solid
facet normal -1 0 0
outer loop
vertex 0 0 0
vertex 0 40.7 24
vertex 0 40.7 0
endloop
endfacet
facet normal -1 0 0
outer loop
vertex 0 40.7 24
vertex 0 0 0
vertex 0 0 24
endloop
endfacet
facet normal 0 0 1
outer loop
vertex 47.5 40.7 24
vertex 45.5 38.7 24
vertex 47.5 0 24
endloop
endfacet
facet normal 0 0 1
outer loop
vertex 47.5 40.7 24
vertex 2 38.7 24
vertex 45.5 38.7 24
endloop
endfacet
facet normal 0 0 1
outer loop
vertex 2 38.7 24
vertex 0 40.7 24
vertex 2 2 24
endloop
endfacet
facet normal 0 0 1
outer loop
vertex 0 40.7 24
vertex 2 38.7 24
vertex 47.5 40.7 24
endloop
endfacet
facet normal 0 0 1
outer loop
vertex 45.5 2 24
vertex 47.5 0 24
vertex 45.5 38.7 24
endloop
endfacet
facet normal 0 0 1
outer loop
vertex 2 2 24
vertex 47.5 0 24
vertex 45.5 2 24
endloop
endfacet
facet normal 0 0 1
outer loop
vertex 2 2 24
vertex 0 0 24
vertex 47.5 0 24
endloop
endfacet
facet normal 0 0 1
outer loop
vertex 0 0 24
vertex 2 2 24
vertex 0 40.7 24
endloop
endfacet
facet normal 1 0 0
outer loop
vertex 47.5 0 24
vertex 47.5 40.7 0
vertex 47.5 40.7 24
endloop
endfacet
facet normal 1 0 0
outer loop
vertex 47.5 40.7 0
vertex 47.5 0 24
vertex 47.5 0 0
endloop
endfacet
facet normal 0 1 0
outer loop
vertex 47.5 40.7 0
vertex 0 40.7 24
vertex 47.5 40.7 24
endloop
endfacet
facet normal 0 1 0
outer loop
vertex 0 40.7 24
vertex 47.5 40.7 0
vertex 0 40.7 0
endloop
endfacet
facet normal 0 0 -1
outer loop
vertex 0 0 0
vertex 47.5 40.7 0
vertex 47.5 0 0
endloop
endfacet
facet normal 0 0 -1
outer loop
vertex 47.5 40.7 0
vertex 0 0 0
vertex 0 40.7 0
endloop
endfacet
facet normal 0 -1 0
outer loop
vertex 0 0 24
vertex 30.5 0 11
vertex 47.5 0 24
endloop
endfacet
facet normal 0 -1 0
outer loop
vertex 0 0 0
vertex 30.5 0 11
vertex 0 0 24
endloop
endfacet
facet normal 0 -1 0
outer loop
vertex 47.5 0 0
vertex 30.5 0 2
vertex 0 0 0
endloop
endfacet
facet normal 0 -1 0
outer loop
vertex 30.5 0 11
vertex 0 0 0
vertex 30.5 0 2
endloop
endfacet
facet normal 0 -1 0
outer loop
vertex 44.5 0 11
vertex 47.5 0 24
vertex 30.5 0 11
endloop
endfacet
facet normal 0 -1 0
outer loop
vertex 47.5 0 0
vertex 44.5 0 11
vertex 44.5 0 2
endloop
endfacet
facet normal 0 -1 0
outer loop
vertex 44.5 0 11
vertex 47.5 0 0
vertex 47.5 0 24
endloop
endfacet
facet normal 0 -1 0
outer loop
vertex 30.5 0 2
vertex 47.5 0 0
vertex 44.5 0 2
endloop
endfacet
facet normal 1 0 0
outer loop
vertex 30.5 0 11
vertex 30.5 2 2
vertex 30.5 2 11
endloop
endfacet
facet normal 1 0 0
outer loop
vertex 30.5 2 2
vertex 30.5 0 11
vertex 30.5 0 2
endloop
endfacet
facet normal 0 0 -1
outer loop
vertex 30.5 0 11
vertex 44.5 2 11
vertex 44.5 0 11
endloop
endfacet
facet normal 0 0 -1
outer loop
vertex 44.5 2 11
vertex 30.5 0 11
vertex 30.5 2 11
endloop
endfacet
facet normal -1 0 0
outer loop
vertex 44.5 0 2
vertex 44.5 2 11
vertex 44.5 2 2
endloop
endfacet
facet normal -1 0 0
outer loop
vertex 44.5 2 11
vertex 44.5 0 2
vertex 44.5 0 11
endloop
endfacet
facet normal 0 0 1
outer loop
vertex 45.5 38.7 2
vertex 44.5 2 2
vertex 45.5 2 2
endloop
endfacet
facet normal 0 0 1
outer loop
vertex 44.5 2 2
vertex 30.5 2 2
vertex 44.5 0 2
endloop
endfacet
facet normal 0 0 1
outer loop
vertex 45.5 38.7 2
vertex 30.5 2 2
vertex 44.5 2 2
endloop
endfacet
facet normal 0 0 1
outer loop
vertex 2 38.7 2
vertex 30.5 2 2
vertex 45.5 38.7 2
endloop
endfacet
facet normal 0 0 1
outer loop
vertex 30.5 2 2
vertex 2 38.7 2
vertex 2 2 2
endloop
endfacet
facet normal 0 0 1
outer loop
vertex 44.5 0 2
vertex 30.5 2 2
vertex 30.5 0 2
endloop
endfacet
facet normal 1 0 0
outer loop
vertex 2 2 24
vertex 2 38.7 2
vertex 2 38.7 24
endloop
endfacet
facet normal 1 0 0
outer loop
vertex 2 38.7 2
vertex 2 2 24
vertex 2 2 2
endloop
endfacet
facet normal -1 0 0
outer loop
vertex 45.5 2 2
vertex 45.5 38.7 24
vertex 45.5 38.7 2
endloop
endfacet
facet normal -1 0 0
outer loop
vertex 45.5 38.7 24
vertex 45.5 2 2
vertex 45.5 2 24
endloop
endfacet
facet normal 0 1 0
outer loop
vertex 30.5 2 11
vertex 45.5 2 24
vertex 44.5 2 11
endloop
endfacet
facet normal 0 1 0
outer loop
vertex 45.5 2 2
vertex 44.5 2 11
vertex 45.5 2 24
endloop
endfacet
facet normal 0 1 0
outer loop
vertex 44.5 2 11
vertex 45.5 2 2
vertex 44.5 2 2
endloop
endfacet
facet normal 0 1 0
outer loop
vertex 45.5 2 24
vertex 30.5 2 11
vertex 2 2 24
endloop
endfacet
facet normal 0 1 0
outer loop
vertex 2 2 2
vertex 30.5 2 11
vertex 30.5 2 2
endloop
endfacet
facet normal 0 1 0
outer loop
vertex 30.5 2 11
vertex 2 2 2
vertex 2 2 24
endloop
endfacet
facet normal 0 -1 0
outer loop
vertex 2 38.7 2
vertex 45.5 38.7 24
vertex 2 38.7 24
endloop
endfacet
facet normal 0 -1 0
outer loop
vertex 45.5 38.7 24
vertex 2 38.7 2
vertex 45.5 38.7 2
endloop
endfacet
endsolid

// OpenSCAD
//Caixa de Acondicionamento para Módulo de Controlador de Motor de Passo
difference(){
    cube([43.5+4,36.70+4,20+4]);
    #translate([2+1+41.5-14,0,2])cube([14,5,9]);
    #translate([2,2,2])cube([43.5,36.70,20+2]);
}
